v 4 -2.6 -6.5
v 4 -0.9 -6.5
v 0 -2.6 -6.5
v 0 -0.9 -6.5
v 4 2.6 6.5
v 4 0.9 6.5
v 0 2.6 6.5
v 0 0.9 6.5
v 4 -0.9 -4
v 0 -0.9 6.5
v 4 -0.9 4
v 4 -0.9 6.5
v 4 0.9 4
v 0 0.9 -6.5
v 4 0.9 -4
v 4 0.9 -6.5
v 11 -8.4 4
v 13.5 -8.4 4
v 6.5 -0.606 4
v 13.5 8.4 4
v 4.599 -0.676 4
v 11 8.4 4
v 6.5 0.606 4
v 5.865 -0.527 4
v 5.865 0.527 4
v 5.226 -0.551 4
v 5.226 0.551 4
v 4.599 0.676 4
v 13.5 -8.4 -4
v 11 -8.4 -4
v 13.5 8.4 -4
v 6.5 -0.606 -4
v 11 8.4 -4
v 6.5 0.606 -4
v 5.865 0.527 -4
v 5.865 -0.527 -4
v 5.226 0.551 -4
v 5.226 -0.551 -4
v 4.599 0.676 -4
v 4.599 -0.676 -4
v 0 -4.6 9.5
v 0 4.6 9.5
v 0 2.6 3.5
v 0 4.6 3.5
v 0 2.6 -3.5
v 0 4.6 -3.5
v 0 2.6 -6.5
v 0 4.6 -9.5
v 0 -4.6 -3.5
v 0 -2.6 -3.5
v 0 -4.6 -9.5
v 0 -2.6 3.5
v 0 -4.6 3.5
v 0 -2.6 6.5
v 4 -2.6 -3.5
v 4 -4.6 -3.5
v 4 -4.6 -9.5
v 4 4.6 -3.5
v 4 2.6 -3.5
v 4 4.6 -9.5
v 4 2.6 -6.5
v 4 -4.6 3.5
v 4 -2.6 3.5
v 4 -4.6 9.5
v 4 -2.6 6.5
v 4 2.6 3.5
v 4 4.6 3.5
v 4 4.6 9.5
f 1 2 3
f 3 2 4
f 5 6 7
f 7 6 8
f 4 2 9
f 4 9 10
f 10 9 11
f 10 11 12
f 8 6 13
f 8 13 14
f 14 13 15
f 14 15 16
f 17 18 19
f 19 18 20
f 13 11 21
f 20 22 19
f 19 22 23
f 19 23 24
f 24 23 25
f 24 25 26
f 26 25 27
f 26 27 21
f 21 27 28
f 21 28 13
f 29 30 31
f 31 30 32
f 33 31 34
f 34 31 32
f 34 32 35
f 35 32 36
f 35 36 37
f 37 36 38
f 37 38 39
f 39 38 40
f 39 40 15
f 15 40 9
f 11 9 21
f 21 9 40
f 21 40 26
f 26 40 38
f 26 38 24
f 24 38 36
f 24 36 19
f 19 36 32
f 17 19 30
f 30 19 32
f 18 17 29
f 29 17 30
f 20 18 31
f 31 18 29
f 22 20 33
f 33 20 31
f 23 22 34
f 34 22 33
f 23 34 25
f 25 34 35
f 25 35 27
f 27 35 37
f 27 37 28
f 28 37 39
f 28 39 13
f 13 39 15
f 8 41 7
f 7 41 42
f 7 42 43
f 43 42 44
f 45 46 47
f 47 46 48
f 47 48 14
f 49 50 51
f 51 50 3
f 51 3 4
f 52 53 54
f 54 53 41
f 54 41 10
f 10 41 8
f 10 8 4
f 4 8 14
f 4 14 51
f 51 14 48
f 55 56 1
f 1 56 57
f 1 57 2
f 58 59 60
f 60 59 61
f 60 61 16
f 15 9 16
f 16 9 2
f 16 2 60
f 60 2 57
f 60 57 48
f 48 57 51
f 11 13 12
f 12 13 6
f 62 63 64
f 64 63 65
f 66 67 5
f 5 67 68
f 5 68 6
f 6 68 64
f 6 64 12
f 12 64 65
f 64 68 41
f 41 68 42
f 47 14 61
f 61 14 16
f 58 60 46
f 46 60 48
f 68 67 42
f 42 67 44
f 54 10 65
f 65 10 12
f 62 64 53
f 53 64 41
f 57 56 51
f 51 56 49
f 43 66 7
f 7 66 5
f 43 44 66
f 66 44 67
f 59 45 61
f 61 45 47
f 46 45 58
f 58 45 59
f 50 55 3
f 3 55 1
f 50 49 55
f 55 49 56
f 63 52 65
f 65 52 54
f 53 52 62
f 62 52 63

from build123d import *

# Parameters (mm, degrees)
EXTRUDE_1_DEPTH          = 4
SKETCH_3_W               = 4
SKETCH_3_H               = 1.8
EXTRUDE_2_DEPTH          = 5.5
SKETCH_5_W               = 4
SKETCH_5_H               = 3
EXTRUDE_3_DEPTH          = 3.7
MIRROR_3_COPY_1_SKETCH_W = 4
MIRROR_3_COPY_1_SKETCH_H = 3
MIRROR_3_COPY_1_DEPTH    = 3.7
SKETCH_7_W               = 4
SKETCH_7_H               = 2
EXTRUDE_4_DEPTH          = 3
MIRROR_5_COPY_1_SKETCH_W = 4
MIRROR_5_COPY_1_SKETCH_H = 2
MIRROR_5_COPY_1_DEPTH    = 3


with BuildPart() as part:
    # Эскиз2 → Бобышка-Вытянуть1 (new, symmetric)
    with BuildSketch(Plane.XY):
        with BuildLine():
            Line((0, 0), (0, 0.9))
            Line((0, 0.9), (4, 0.9))
            ThreePointArc((4, 0.9), (5.226251594, 0.551100379), (6.5, 0.605771366))
            Line((6.5, 0.605771366), (11, 8.4))
            Line((11, 8.4), (13.5, 8.4))
            Line((13.5, 8.4), (13.5, -8.4))
            Line((13.5, -8.4), (11, -8.4))
            Line((11, -8.4), (6.5, -0.605771366))
            ThreePointArc((6.5, -0.605771366), (5.226251594, -0.551100379), (4, -0.9))
            Line((4, -0.9), (0, -0.9))
            Line((0, -0.9), (0, 0))
        make_face()
    extrude(amount=EXTRUDE_1_DEPTH, both=True)

    # Эскиз3 → Бобышка-Вытянуть2 (add)
    with BuildSketch(Plane(origin=(0, 0, -4), x_dir=(-1, 0, 0), z_dir=(0, 0, -1))):
        with Locations((-2, 0)):
            Rectangle(SKETCH_3_W, SKETCH_3_H)
    extrude_2 = extrude(amount=EXTRUDE_2_DEPTH)

    # Зеркальное отражение1: Бобышка-Вытянуть2 across plane
    add(extrude_2.mirror(Plane.XY))

    # Эскиз5 → Бобышка-Вытянуть3 (add)
    with BuildSketch(Plane(origin=(0, 0.9, 0), x_dir=(1, 0, 0), z_dir=(0, 1, 0))):
        with Locations((2, 8)):
            Rectangle(SKETCH_5_W, SKETCH_5_H)
    extrude_3 = extrude(amount=EXTRUDE_3_DEPTH)

    # Зеркальное отражение2: Бобышка-Вытянуть3 across plane
    add(extrude_3.mirror(Plane.XY))

    # Зеркальное отражение3: Бобышка-Вытянуть3 across plane
    add(extrude_3.mirror(Plane.ZX))

    # Зеркальное отражение3 copy 1 sketch → Зеркальное отражение3 copy 1 (add)
    with BuildSketch(Plane.XZ.offset(0.9)):
        with Locations((2, 8)):
            Rectangle(MIRROR_3_COPY_1_SKETCH_W, MIRROR_3_COPY_1_SKETCH_H)
    extrude(amount=MIRROR_3_COPY_1_DEPTH)

    # Эскиз7 → Бобышка-Вытянуть4 (add)
    with BuildSketch(Plane(origin=(0, 0, 6.5), x_dir=(-1, 0, 0), z_dir=(0, 0, -1))):
        with Locations((-2, 3.6)):
            Rectangle(SKETCH_7_W, SKETCH_7_H)
    extrude_4 = extrude(amount=EXTRUDE_4_DEPTH)

    # Зеркальное отражение4: Бобышка-Вытянуть4 across plane
    add(extrude_4.mirror(Plane.XY))

    # Зеркальное отражение5: Бобышка-Вытянуть4 across plane
    add(extrude_4.mirror(Plane.ZX))

    # Зеркальное отражение5 copy 1 sketch → Зеркальное отражение5 copy 1 (add)
    with BuildSketch(Plane(origin=(0, 0, -6.5), x_dir=(-1, 0, 0), z_dir=(0, 0, 1))):
        with Locations((-2, 3.6)):
            Rectangle(MIRROR_5_COPY_1_SKETCH_W, MIRROR_5_COPY_1_SKETCH_H)
    extrude(amount=MIRROR_5_COPY_1_DEPTH)


solid = part.part
